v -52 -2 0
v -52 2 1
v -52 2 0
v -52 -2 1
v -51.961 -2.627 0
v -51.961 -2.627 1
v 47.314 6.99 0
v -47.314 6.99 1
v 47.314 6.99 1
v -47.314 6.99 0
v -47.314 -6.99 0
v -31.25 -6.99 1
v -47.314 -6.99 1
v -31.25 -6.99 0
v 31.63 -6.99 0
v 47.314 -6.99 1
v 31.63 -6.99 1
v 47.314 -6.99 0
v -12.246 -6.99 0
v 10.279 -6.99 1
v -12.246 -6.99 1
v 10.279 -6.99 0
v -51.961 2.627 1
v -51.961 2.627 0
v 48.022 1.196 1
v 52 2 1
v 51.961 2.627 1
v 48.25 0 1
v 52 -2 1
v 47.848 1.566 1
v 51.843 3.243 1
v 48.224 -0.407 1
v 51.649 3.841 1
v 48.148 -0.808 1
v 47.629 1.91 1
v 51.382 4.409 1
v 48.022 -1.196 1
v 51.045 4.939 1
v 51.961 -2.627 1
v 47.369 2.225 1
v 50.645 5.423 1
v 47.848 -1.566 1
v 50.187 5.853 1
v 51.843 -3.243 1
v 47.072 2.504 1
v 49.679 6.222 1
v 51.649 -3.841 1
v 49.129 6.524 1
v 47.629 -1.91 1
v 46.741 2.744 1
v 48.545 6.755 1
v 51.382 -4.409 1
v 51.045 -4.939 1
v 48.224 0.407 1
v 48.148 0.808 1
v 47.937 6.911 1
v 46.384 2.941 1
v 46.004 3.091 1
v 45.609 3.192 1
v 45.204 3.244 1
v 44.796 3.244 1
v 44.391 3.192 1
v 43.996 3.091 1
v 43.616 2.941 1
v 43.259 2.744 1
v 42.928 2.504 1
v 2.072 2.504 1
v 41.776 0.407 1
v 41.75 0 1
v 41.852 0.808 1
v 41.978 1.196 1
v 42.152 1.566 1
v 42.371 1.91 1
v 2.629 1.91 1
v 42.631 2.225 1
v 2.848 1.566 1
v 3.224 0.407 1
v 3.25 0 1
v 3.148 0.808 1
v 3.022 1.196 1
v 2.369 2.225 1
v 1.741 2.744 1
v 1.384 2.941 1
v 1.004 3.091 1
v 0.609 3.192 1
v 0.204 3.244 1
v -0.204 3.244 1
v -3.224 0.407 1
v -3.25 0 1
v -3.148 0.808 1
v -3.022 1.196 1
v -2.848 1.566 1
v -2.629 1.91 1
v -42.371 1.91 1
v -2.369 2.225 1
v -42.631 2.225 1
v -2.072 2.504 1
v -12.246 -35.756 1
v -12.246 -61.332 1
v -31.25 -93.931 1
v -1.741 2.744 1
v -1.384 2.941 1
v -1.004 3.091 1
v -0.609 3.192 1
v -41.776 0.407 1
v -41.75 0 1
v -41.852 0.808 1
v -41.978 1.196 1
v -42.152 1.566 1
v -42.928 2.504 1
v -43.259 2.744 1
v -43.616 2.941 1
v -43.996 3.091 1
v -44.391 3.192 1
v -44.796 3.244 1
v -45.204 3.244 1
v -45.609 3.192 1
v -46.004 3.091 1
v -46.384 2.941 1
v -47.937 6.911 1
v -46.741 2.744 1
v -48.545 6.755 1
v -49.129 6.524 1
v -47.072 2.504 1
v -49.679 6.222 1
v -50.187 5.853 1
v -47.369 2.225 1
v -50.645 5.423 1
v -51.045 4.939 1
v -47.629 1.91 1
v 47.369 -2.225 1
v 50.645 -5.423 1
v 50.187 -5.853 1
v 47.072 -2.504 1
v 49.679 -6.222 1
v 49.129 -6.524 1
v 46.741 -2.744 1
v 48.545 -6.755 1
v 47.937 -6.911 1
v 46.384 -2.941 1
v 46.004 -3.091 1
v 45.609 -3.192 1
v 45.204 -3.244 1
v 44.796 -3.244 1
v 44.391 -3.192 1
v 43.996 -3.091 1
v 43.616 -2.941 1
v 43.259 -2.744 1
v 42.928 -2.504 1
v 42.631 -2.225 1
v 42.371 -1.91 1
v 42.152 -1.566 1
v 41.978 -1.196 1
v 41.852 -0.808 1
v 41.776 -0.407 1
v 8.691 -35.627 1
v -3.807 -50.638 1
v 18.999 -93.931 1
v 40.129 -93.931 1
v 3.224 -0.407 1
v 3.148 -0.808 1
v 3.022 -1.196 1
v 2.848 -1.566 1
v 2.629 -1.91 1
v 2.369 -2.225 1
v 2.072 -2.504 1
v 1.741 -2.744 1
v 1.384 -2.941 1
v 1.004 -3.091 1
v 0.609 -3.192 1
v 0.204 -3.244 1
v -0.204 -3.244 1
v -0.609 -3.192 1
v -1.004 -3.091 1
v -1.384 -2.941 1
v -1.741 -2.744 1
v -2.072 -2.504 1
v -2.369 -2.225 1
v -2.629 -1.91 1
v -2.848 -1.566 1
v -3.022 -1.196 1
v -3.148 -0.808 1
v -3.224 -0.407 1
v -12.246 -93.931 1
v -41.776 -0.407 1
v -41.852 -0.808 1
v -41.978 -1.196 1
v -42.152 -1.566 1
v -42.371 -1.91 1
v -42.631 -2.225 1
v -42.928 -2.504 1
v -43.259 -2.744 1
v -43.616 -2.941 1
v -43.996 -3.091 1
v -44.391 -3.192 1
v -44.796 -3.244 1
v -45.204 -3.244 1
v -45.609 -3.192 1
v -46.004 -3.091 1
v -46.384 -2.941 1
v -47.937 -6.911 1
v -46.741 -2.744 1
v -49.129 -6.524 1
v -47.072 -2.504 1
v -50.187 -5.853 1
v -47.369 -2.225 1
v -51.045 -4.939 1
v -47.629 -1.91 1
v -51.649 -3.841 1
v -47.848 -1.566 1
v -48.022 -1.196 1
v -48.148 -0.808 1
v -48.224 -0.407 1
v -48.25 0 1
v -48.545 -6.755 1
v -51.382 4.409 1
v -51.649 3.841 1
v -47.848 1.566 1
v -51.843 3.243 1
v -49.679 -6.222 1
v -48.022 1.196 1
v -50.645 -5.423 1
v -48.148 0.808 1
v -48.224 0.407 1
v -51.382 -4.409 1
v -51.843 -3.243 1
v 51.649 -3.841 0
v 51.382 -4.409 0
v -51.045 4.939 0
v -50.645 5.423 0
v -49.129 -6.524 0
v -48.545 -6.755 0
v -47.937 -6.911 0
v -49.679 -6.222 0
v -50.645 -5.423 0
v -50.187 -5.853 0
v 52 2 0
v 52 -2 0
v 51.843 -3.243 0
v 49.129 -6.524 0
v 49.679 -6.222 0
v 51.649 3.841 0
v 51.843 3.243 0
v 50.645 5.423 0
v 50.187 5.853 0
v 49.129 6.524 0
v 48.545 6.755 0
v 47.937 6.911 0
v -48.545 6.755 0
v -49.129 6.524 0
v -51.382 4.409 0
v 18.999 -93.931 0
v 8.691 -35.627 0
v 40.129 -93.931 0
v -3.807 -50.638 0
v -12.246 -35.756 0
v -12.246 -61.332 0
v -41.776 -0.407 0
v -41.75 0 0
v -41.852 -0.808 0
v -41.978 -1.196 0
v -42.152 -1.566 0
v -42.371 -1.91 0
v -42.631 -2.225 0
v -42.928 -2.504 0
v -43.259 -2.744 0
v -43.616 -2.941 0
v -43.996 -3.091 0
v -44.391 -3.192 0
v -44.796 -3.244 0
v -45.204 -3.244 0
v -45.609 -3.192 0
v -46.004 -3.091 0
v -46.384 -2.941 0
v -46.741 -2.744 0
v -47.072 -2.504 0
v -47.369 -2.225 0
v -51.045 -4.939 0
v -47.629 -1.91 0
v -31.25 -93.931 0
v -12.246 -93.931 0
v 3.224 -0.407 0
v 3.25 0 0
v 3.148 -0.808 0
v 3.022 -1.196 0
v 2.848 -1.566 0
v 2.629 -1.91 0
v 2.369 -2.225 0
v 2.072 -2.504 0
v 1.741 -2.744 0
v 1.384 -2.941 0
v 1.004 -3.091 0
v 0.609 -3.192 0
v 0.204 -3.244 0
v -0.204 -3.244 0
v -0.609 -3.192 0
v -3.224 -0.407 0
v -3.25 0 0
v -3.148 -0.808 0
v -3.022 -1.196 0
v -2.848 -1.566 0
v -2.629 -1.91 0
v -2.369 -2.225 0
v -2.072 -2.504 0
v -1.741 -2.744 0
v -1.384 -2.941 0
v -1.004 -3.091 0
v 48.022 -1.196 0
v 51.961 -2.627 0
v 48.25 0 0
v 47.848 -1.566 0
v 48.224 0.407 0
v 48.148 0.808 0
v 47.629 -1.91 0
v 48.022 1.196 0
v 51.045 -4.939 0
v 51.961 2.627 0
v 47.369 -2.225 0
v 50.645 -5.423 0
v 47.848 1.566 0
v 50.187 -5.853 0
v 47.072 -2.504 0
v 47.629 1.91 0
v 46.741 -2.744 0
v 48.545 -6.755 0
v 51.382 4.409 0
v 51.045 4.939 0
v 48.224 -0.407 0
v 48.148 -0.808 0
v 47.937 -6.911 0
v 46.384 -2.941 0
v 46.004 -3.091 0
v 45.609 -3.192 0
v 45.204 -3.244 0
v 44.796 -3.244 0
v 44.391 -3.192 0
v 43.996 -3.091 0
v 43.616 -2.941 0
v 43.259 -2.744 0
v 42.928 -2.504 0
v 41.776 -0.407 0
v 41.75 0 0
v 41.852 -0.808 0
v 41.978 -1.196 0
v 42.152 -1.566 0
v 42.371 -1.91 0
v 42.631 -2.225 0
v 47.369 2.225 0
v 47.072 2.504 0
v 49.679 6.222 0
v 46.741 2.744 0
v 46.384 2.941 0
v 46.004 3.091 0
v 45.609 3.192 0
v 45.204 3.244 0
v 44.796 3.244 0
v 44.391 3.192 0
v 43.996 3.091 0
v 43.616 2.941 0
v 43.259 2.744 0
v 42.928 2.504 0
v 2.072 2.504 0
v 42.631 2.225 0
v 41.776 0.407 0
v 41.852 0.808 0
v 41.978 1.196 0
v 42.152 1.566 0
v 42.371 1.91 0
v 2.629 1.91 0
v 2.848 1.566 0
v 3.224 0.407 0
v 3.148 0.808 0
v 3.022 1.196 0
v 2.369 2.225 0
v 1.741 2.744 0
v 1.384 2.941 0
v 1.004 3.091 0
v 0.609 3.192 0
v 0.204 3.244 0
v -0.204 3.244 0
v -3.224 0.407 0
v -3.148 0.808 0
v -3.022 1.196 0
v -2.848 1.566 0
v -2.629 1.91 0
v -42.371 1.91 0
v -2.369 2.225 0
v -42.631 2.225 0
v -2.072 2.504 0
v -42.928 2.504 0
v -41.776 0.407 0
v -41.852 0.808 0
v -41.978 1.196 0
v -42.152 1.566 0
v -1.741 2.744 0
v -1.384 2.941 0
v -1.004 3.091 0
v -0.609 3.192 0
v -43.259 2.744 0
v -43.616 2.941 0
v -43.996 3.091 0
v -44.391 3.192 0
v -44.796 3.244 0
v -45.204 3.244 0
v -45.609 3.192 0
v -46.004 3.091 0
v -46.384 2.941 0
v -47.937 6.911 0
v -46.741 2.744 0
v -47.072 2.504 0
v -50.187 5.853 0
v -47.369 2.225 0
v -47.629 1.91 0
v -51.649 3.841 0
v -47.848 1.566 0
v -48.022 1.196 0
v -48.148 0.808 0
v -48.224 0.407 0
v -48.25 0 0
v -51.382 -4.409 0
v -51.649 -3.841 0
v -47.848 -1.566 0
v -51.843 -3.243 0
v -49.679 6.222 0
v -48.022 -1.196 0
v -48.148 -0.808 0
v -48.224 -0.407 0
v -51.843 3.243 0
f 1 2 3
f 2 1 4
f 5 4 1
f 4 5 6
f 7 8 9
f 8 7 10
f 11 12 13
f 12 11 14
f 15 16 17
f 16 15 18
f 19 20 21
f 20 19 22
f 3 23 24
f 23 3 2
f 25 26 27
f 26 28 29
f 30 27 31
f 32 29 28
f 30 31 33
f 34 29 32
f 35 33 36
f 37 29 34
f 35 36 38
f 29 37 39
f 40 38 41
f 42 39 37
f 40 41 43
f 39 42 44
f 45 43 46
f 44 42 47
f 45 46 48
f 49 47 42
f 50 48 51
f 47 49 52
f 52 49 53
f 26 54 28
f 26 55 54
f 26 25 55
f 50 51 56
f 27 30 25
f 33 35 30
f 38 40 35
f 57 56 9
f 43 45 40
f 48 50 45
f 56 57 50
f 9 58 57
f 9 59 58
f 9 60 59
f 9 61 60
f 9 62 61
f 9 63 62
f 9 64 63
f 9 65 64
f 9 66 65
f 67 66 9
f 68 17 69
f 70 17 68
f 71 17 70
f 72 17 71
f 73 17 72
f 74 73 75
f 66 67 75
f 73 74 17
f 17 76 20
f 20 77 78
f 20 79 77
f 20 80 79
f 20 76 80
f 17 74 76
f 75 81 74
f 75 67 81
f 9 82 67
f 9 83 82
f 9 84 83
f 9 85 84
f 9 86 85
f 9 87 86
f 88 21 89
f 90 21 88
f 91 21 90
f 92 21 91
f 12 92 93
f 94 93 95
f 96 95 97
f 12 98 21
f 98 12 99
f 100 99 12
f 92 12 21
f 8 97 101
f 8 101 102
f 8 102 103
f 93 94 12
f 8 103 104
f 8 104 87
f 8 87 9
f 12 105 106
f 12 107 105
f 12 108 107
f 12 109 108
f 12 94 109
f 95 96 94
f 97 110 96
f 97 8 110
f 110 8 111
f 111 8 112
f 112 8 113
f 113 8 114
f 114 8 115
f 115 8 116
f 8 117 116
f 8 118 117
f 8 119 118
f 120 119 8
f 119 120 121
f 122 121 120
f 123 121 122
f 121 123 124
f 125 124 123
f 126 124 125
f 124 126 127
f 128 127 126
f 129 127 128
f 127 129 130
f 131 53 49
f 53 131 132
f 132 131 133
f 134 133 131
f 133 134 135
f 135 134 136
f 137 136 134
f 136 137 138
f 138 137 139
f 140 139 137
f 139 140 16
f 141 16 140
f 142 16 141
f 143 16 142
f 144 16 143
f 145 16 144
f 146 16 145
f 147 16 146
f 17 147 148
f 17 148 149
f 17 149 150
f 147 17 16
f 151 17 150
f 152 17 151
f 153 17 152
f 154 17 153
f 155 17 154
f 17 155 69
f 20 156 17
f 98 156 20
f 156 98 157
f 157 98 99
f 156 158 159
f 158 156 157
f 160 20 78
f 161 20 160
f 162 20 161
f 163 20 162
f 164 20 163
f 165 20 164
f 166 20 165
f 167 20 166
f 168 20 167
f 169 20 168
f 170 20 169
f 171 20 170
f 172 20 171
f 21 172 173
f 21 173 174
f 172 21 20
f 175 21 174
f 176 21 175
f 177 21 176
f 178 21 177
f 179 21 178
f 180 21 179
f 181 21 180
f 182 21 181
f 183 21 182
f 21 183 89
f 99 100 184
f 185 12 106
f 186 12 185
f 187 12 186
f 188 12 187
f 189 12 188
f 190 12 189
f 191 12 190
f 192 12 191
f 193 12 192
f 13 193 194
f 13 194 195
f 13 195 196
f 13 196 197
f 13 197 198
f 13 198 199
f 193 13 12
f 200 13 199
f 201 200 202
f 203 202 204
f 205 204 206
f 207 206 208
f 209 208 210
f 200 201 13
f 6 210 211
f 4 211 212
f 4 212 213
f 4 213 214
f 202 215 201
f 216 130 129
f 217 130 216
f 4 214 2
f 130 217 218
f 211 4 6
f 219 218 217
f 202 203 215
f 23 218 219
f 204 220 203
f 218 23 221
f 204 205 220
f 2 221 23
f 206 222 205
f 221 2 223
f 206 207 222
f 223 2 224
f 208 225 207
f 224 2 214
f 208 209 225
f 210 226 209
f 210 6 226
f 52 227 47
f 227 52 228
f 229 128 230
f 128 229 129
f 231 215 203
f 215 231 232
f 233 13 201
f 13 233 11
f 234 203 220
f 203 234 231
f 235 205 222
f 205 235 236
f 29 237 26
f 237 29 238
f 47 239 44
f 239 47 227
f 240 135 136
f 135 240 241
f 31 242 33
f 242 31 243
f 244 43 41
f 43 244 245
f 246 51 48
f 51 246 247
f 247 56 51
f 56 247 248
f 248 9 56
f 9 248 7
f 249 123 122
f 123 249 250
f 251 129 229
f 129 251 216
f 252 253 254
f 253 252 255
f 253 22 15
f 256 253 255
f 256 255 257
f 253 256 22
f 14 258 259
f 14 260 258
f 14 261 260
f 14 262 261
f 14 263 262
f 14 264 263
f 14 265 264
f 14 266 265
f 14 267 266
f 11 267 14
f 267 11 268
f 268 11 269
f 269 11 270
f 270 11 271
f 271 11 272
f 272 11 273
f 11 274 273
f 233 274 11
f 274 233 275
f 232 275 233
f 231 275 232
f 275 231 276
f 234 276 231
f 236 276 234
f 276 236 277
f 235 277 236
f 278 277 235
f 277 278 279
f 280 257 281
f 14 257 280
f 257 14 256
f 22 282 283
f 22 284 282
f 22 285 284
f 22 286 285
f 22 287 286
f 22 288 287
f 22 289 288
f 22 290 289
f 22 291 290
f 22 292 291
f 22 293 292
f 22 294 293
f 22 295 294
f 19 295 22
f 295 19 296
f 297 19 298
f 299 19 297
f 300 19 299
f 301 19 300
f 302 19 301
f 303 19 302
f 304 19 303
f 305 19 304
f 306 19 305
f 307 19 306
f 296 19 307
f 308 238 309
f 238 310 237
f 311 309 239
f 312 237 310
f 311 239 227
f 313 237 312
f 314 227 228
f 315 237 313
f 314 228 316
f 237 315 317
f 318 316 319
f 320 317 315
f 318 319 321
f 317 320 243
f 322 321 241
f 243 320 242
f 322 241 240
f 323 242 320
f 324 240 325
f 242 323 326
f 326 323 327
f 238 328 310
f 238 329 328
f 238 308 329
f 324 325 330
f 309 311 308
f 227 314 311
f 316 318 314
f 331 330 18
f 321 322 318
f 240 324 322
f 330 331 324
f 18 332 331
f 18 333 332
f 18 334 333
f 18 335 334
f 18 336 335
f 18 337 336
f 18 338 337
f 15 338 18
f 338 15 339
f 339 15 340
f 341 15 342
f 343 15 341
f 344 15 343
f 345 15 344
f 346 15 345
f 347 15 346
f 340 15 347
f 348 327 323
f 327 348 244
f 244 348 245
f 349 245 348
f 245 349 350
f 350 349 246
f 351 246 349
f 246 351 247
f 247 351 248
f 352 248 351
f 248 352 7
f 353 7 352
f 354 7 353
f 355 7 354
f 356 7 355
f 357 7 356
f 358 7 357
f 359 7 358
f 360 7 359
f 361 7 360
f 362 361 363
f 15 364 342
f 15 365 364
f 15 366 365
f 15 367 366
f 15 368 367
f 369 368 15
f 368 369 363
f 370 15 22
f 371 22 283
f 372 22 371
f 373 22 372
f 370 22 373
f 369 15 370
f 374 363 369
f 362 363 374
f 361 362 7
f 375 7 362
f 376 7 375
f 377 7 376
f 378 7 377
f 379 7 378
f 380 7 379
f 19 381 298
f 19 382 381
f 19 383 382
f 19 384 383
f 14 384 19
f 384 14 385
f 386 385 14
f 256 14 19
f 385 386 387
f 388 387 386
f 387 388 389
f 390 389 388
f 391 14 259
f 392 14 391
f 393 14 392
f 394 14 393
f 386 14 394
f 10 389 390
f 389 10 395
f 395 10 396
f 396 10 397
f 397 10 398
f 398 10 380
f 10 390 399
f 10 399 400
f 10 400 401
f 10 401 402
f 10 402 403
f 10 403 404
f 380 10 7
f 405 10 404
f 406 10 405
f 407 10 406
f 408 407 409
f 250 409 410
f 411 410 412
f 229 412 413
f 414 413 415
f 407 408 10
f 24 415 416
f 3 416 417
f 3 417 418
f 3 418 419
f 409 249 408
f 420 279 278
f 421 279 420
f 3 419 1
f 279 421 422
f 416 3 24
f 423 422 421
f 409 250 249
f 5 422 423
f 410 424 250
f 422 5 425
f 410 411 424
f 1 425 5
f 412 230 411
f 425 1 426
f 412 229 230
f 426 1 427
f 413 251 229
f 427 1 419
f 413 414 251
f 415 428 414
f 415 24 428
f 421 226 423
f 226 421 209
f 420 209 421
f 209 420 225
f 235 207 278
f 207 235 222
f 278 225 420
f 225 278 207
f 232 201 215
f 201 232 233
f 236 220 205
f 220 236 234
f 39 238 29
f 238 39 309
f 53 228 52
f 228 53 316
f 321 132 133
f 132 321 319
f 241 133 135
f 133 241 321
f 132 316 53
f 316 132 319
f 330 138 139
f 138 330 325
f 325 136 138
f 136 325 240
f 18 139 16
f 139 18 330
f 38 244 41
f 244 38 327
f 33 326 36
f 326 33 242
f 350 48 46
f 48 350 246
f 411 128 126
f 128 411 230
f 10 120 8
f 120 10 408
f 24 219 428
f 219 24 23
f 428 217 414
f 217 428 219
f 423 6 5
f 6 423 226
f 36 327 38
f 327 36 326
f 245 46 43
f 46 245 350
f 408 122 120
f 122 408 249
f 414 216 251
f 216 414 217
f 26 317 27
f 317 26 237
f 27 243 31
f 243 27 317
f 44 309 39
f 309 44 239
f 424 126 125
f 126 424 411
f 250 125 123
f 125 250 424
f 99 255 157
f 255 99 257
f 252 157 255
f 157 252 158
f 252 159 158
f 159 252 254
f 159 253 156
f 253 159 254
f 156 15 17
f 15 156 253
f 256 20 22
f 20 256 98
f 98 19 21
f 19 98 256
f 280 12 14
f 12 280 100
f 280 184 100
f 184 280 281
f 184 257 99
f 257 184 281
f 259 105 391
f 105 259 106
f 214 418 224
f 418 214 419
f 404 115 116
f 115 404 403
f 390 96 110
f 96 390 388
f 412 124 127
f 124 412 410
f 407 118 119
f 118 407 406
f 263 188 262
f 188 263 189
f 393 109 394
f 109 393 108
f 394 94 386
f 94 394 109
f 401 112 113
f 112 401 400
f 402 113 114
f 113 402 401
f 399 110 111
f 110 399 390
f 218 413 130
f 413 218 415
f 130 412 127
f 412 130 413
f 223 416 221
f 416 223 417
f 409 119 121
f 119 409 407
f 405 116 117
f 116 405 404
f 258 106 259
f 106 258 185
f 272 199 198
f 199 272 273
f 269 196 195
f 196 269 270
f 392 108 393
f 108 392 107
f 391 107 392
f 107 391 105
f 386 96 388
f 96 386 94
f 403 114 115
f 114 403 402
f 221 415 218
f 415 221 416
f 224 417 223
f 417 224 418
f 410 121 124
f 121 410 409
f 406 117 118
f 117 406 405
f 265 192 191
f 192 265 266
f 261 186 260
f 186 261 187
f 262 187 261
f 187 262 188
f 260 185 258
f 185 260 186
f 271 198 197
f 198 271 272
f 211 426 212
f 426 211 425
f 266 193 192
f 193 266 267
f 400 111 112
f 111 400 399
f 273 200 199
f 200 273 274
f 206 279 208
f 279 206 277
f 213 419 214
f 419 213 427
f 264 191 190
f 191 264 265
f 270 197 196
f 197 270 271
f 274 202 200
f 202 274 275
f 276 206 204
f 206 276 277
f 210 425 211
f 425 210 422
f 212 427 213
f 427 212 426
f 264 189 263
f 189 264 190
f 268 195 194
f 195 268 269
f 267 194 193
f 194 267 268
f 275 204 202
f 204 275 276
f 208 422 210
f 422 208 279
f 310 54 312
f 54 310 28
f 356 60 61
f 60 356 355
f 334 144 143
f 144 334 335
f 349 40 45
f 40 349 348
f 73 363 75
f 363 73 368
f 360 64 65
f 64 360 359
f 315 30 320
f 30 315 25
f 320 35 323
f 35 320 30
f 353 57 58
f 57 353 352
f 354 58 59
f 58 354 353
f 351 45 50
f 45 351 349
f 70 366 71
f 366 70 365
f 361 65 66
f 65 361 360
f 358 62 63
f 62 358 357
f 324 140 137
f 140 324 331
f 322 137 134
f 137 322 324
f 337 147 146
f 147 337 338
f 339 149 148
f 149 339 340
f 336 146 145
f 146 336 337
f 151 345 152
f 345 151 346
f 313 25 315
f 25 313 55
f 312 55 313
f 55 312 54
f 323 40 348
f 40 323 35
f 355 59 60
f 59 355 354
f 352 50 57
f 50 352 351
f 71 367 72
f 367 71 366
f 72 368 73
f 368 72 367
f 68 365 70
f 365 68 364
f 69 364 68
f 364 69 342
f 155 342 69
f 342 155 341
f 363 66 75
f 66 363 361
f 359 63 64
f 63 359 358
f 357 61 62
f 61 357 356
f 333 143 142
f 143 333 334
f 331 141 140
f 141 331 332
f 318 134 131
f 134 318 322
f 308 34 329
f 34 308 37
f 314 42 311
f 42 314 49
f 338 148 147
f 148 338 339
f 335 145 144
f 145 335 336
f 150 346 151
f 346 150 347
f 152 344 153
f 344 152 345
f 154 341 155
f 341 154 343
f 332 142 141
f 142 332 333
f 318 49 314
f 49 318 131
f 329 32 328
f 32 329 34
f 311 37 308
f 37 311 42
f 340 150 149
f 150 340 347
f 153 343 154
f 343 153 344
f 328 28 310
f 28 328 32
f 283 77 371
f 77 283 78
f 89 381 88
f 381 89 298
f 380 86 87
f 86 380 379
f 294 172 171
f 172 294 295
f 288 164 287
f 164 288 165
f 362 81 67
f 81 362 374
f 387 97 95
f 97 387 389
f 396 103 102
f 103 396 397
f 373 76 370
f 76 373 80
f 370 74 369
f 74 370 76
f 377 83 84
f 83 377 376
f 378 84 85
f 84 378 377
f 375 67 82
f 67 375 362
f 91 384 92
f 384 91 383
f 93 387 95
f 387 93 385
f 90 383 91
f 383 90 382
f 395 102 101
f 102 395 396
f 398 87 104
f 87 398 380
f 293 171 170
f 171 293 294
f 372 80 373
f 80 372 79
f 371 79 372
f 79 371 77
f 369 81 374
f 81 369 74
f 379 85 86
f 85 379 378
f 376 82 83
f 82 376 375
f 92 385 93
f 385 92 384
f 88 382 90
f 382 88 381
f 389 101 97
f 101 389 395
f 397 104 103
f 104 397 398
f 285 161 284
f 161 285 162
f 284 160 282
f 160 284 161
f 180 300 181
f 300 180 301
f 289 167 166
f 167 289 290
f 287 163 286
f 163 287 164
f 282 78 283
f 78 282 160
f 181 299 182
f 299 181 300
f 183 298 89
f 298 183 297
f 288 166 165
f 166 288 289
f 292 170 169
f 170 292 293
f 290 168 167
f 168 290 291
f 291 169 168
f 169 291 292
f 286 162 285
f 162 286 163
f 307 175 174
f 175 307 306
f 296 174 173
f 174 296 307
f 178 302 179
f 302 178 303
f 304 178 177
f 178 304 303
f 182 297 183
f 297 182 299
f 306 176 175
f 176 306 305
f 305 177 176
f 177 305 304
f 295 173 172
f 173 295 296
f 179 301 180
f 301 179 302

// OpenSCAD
$fn = 50;


difference() {
	union() {
		translate(v = [0, 0, 0]) {
			rotate(a = [0, 0, 0]) {
				hull() {
					translate(v = [-47.0000000000, 2.0000000000, 0]) {
						rotate(a = [0, 0, 0]) {
							translate(v = [0, 0, 0]) {
								rotate(a = [0, 0, 0]) {
									cylinder(h = 1, r = 5);
								}
							}
						}
					}
					translate(v = [47.0000000000, 2.0000000000, 0]) {
						rotate(a = [0, 0, 0]) {
							translate(v = [0, 0, 0]) {
								rotate(a = [0, 0, 0]) {
									cylinder(h = 1, r = 5);
								}
							}
						}
					}
					translate(v = [-47.0000000000, -2.0000000000, 0]) {
						rotate(a = [0, 0, 0]) {
							translate(v = [0, 0, 0]) {
								rotate(a = [0, 0, 0]) {
									cylinder(h = 1, r = 5);
								}
							}
						}
					}
					translate(v = [47.0000000000, -2.0000000000, 0]) {
						rotate(a = [0, 0, 0]) {
							translate(v = [0, 0, 0]) {
								rotate(a = [0, 0, 0]) {
									cylinder(h = 1, r = 5);
								}
							}
						}
					}
				}
			}
		}
		translate(v = [0, 0, 0]) {
			rotate(a = [0, 0, 0]) {
				linear_extrude(height = 1) {
					text(font = "DejaVu Sans Mono:style=Bold", halign = "center", size = 95, text = "K", valign = "top");
				}
			}
		}
	}
	union() {
		translate(v = [-45.0000000000, 0.0000000000, -125.0000000000]) {
			rotate(a = [0, 0, 0]) {
				cylinder(h = 250, r = 3.2500000000);
			}
		}
		translate(v = [45.0000000000, 0.0000000000, -125.0000000000]) {
			rotate(a = [0, 0, 0]) {
				cylinder(h = 250, r = 3.2500000000);
			}
		}
		translate(v = [45.0000000000, 0.0000000000, -125.0000000000]) {
			rotate(a = [0, 0, 0]) {
				cylinder(h = 250, r = 3.2500000000);
			}
		}
		translate(v = [0, 0, -125.0000000000]) {
			rotate(a = [0, 0, 0]) {
				cylinder(h = 250, r = 3.2500000000);
			}
		}
	}
}
